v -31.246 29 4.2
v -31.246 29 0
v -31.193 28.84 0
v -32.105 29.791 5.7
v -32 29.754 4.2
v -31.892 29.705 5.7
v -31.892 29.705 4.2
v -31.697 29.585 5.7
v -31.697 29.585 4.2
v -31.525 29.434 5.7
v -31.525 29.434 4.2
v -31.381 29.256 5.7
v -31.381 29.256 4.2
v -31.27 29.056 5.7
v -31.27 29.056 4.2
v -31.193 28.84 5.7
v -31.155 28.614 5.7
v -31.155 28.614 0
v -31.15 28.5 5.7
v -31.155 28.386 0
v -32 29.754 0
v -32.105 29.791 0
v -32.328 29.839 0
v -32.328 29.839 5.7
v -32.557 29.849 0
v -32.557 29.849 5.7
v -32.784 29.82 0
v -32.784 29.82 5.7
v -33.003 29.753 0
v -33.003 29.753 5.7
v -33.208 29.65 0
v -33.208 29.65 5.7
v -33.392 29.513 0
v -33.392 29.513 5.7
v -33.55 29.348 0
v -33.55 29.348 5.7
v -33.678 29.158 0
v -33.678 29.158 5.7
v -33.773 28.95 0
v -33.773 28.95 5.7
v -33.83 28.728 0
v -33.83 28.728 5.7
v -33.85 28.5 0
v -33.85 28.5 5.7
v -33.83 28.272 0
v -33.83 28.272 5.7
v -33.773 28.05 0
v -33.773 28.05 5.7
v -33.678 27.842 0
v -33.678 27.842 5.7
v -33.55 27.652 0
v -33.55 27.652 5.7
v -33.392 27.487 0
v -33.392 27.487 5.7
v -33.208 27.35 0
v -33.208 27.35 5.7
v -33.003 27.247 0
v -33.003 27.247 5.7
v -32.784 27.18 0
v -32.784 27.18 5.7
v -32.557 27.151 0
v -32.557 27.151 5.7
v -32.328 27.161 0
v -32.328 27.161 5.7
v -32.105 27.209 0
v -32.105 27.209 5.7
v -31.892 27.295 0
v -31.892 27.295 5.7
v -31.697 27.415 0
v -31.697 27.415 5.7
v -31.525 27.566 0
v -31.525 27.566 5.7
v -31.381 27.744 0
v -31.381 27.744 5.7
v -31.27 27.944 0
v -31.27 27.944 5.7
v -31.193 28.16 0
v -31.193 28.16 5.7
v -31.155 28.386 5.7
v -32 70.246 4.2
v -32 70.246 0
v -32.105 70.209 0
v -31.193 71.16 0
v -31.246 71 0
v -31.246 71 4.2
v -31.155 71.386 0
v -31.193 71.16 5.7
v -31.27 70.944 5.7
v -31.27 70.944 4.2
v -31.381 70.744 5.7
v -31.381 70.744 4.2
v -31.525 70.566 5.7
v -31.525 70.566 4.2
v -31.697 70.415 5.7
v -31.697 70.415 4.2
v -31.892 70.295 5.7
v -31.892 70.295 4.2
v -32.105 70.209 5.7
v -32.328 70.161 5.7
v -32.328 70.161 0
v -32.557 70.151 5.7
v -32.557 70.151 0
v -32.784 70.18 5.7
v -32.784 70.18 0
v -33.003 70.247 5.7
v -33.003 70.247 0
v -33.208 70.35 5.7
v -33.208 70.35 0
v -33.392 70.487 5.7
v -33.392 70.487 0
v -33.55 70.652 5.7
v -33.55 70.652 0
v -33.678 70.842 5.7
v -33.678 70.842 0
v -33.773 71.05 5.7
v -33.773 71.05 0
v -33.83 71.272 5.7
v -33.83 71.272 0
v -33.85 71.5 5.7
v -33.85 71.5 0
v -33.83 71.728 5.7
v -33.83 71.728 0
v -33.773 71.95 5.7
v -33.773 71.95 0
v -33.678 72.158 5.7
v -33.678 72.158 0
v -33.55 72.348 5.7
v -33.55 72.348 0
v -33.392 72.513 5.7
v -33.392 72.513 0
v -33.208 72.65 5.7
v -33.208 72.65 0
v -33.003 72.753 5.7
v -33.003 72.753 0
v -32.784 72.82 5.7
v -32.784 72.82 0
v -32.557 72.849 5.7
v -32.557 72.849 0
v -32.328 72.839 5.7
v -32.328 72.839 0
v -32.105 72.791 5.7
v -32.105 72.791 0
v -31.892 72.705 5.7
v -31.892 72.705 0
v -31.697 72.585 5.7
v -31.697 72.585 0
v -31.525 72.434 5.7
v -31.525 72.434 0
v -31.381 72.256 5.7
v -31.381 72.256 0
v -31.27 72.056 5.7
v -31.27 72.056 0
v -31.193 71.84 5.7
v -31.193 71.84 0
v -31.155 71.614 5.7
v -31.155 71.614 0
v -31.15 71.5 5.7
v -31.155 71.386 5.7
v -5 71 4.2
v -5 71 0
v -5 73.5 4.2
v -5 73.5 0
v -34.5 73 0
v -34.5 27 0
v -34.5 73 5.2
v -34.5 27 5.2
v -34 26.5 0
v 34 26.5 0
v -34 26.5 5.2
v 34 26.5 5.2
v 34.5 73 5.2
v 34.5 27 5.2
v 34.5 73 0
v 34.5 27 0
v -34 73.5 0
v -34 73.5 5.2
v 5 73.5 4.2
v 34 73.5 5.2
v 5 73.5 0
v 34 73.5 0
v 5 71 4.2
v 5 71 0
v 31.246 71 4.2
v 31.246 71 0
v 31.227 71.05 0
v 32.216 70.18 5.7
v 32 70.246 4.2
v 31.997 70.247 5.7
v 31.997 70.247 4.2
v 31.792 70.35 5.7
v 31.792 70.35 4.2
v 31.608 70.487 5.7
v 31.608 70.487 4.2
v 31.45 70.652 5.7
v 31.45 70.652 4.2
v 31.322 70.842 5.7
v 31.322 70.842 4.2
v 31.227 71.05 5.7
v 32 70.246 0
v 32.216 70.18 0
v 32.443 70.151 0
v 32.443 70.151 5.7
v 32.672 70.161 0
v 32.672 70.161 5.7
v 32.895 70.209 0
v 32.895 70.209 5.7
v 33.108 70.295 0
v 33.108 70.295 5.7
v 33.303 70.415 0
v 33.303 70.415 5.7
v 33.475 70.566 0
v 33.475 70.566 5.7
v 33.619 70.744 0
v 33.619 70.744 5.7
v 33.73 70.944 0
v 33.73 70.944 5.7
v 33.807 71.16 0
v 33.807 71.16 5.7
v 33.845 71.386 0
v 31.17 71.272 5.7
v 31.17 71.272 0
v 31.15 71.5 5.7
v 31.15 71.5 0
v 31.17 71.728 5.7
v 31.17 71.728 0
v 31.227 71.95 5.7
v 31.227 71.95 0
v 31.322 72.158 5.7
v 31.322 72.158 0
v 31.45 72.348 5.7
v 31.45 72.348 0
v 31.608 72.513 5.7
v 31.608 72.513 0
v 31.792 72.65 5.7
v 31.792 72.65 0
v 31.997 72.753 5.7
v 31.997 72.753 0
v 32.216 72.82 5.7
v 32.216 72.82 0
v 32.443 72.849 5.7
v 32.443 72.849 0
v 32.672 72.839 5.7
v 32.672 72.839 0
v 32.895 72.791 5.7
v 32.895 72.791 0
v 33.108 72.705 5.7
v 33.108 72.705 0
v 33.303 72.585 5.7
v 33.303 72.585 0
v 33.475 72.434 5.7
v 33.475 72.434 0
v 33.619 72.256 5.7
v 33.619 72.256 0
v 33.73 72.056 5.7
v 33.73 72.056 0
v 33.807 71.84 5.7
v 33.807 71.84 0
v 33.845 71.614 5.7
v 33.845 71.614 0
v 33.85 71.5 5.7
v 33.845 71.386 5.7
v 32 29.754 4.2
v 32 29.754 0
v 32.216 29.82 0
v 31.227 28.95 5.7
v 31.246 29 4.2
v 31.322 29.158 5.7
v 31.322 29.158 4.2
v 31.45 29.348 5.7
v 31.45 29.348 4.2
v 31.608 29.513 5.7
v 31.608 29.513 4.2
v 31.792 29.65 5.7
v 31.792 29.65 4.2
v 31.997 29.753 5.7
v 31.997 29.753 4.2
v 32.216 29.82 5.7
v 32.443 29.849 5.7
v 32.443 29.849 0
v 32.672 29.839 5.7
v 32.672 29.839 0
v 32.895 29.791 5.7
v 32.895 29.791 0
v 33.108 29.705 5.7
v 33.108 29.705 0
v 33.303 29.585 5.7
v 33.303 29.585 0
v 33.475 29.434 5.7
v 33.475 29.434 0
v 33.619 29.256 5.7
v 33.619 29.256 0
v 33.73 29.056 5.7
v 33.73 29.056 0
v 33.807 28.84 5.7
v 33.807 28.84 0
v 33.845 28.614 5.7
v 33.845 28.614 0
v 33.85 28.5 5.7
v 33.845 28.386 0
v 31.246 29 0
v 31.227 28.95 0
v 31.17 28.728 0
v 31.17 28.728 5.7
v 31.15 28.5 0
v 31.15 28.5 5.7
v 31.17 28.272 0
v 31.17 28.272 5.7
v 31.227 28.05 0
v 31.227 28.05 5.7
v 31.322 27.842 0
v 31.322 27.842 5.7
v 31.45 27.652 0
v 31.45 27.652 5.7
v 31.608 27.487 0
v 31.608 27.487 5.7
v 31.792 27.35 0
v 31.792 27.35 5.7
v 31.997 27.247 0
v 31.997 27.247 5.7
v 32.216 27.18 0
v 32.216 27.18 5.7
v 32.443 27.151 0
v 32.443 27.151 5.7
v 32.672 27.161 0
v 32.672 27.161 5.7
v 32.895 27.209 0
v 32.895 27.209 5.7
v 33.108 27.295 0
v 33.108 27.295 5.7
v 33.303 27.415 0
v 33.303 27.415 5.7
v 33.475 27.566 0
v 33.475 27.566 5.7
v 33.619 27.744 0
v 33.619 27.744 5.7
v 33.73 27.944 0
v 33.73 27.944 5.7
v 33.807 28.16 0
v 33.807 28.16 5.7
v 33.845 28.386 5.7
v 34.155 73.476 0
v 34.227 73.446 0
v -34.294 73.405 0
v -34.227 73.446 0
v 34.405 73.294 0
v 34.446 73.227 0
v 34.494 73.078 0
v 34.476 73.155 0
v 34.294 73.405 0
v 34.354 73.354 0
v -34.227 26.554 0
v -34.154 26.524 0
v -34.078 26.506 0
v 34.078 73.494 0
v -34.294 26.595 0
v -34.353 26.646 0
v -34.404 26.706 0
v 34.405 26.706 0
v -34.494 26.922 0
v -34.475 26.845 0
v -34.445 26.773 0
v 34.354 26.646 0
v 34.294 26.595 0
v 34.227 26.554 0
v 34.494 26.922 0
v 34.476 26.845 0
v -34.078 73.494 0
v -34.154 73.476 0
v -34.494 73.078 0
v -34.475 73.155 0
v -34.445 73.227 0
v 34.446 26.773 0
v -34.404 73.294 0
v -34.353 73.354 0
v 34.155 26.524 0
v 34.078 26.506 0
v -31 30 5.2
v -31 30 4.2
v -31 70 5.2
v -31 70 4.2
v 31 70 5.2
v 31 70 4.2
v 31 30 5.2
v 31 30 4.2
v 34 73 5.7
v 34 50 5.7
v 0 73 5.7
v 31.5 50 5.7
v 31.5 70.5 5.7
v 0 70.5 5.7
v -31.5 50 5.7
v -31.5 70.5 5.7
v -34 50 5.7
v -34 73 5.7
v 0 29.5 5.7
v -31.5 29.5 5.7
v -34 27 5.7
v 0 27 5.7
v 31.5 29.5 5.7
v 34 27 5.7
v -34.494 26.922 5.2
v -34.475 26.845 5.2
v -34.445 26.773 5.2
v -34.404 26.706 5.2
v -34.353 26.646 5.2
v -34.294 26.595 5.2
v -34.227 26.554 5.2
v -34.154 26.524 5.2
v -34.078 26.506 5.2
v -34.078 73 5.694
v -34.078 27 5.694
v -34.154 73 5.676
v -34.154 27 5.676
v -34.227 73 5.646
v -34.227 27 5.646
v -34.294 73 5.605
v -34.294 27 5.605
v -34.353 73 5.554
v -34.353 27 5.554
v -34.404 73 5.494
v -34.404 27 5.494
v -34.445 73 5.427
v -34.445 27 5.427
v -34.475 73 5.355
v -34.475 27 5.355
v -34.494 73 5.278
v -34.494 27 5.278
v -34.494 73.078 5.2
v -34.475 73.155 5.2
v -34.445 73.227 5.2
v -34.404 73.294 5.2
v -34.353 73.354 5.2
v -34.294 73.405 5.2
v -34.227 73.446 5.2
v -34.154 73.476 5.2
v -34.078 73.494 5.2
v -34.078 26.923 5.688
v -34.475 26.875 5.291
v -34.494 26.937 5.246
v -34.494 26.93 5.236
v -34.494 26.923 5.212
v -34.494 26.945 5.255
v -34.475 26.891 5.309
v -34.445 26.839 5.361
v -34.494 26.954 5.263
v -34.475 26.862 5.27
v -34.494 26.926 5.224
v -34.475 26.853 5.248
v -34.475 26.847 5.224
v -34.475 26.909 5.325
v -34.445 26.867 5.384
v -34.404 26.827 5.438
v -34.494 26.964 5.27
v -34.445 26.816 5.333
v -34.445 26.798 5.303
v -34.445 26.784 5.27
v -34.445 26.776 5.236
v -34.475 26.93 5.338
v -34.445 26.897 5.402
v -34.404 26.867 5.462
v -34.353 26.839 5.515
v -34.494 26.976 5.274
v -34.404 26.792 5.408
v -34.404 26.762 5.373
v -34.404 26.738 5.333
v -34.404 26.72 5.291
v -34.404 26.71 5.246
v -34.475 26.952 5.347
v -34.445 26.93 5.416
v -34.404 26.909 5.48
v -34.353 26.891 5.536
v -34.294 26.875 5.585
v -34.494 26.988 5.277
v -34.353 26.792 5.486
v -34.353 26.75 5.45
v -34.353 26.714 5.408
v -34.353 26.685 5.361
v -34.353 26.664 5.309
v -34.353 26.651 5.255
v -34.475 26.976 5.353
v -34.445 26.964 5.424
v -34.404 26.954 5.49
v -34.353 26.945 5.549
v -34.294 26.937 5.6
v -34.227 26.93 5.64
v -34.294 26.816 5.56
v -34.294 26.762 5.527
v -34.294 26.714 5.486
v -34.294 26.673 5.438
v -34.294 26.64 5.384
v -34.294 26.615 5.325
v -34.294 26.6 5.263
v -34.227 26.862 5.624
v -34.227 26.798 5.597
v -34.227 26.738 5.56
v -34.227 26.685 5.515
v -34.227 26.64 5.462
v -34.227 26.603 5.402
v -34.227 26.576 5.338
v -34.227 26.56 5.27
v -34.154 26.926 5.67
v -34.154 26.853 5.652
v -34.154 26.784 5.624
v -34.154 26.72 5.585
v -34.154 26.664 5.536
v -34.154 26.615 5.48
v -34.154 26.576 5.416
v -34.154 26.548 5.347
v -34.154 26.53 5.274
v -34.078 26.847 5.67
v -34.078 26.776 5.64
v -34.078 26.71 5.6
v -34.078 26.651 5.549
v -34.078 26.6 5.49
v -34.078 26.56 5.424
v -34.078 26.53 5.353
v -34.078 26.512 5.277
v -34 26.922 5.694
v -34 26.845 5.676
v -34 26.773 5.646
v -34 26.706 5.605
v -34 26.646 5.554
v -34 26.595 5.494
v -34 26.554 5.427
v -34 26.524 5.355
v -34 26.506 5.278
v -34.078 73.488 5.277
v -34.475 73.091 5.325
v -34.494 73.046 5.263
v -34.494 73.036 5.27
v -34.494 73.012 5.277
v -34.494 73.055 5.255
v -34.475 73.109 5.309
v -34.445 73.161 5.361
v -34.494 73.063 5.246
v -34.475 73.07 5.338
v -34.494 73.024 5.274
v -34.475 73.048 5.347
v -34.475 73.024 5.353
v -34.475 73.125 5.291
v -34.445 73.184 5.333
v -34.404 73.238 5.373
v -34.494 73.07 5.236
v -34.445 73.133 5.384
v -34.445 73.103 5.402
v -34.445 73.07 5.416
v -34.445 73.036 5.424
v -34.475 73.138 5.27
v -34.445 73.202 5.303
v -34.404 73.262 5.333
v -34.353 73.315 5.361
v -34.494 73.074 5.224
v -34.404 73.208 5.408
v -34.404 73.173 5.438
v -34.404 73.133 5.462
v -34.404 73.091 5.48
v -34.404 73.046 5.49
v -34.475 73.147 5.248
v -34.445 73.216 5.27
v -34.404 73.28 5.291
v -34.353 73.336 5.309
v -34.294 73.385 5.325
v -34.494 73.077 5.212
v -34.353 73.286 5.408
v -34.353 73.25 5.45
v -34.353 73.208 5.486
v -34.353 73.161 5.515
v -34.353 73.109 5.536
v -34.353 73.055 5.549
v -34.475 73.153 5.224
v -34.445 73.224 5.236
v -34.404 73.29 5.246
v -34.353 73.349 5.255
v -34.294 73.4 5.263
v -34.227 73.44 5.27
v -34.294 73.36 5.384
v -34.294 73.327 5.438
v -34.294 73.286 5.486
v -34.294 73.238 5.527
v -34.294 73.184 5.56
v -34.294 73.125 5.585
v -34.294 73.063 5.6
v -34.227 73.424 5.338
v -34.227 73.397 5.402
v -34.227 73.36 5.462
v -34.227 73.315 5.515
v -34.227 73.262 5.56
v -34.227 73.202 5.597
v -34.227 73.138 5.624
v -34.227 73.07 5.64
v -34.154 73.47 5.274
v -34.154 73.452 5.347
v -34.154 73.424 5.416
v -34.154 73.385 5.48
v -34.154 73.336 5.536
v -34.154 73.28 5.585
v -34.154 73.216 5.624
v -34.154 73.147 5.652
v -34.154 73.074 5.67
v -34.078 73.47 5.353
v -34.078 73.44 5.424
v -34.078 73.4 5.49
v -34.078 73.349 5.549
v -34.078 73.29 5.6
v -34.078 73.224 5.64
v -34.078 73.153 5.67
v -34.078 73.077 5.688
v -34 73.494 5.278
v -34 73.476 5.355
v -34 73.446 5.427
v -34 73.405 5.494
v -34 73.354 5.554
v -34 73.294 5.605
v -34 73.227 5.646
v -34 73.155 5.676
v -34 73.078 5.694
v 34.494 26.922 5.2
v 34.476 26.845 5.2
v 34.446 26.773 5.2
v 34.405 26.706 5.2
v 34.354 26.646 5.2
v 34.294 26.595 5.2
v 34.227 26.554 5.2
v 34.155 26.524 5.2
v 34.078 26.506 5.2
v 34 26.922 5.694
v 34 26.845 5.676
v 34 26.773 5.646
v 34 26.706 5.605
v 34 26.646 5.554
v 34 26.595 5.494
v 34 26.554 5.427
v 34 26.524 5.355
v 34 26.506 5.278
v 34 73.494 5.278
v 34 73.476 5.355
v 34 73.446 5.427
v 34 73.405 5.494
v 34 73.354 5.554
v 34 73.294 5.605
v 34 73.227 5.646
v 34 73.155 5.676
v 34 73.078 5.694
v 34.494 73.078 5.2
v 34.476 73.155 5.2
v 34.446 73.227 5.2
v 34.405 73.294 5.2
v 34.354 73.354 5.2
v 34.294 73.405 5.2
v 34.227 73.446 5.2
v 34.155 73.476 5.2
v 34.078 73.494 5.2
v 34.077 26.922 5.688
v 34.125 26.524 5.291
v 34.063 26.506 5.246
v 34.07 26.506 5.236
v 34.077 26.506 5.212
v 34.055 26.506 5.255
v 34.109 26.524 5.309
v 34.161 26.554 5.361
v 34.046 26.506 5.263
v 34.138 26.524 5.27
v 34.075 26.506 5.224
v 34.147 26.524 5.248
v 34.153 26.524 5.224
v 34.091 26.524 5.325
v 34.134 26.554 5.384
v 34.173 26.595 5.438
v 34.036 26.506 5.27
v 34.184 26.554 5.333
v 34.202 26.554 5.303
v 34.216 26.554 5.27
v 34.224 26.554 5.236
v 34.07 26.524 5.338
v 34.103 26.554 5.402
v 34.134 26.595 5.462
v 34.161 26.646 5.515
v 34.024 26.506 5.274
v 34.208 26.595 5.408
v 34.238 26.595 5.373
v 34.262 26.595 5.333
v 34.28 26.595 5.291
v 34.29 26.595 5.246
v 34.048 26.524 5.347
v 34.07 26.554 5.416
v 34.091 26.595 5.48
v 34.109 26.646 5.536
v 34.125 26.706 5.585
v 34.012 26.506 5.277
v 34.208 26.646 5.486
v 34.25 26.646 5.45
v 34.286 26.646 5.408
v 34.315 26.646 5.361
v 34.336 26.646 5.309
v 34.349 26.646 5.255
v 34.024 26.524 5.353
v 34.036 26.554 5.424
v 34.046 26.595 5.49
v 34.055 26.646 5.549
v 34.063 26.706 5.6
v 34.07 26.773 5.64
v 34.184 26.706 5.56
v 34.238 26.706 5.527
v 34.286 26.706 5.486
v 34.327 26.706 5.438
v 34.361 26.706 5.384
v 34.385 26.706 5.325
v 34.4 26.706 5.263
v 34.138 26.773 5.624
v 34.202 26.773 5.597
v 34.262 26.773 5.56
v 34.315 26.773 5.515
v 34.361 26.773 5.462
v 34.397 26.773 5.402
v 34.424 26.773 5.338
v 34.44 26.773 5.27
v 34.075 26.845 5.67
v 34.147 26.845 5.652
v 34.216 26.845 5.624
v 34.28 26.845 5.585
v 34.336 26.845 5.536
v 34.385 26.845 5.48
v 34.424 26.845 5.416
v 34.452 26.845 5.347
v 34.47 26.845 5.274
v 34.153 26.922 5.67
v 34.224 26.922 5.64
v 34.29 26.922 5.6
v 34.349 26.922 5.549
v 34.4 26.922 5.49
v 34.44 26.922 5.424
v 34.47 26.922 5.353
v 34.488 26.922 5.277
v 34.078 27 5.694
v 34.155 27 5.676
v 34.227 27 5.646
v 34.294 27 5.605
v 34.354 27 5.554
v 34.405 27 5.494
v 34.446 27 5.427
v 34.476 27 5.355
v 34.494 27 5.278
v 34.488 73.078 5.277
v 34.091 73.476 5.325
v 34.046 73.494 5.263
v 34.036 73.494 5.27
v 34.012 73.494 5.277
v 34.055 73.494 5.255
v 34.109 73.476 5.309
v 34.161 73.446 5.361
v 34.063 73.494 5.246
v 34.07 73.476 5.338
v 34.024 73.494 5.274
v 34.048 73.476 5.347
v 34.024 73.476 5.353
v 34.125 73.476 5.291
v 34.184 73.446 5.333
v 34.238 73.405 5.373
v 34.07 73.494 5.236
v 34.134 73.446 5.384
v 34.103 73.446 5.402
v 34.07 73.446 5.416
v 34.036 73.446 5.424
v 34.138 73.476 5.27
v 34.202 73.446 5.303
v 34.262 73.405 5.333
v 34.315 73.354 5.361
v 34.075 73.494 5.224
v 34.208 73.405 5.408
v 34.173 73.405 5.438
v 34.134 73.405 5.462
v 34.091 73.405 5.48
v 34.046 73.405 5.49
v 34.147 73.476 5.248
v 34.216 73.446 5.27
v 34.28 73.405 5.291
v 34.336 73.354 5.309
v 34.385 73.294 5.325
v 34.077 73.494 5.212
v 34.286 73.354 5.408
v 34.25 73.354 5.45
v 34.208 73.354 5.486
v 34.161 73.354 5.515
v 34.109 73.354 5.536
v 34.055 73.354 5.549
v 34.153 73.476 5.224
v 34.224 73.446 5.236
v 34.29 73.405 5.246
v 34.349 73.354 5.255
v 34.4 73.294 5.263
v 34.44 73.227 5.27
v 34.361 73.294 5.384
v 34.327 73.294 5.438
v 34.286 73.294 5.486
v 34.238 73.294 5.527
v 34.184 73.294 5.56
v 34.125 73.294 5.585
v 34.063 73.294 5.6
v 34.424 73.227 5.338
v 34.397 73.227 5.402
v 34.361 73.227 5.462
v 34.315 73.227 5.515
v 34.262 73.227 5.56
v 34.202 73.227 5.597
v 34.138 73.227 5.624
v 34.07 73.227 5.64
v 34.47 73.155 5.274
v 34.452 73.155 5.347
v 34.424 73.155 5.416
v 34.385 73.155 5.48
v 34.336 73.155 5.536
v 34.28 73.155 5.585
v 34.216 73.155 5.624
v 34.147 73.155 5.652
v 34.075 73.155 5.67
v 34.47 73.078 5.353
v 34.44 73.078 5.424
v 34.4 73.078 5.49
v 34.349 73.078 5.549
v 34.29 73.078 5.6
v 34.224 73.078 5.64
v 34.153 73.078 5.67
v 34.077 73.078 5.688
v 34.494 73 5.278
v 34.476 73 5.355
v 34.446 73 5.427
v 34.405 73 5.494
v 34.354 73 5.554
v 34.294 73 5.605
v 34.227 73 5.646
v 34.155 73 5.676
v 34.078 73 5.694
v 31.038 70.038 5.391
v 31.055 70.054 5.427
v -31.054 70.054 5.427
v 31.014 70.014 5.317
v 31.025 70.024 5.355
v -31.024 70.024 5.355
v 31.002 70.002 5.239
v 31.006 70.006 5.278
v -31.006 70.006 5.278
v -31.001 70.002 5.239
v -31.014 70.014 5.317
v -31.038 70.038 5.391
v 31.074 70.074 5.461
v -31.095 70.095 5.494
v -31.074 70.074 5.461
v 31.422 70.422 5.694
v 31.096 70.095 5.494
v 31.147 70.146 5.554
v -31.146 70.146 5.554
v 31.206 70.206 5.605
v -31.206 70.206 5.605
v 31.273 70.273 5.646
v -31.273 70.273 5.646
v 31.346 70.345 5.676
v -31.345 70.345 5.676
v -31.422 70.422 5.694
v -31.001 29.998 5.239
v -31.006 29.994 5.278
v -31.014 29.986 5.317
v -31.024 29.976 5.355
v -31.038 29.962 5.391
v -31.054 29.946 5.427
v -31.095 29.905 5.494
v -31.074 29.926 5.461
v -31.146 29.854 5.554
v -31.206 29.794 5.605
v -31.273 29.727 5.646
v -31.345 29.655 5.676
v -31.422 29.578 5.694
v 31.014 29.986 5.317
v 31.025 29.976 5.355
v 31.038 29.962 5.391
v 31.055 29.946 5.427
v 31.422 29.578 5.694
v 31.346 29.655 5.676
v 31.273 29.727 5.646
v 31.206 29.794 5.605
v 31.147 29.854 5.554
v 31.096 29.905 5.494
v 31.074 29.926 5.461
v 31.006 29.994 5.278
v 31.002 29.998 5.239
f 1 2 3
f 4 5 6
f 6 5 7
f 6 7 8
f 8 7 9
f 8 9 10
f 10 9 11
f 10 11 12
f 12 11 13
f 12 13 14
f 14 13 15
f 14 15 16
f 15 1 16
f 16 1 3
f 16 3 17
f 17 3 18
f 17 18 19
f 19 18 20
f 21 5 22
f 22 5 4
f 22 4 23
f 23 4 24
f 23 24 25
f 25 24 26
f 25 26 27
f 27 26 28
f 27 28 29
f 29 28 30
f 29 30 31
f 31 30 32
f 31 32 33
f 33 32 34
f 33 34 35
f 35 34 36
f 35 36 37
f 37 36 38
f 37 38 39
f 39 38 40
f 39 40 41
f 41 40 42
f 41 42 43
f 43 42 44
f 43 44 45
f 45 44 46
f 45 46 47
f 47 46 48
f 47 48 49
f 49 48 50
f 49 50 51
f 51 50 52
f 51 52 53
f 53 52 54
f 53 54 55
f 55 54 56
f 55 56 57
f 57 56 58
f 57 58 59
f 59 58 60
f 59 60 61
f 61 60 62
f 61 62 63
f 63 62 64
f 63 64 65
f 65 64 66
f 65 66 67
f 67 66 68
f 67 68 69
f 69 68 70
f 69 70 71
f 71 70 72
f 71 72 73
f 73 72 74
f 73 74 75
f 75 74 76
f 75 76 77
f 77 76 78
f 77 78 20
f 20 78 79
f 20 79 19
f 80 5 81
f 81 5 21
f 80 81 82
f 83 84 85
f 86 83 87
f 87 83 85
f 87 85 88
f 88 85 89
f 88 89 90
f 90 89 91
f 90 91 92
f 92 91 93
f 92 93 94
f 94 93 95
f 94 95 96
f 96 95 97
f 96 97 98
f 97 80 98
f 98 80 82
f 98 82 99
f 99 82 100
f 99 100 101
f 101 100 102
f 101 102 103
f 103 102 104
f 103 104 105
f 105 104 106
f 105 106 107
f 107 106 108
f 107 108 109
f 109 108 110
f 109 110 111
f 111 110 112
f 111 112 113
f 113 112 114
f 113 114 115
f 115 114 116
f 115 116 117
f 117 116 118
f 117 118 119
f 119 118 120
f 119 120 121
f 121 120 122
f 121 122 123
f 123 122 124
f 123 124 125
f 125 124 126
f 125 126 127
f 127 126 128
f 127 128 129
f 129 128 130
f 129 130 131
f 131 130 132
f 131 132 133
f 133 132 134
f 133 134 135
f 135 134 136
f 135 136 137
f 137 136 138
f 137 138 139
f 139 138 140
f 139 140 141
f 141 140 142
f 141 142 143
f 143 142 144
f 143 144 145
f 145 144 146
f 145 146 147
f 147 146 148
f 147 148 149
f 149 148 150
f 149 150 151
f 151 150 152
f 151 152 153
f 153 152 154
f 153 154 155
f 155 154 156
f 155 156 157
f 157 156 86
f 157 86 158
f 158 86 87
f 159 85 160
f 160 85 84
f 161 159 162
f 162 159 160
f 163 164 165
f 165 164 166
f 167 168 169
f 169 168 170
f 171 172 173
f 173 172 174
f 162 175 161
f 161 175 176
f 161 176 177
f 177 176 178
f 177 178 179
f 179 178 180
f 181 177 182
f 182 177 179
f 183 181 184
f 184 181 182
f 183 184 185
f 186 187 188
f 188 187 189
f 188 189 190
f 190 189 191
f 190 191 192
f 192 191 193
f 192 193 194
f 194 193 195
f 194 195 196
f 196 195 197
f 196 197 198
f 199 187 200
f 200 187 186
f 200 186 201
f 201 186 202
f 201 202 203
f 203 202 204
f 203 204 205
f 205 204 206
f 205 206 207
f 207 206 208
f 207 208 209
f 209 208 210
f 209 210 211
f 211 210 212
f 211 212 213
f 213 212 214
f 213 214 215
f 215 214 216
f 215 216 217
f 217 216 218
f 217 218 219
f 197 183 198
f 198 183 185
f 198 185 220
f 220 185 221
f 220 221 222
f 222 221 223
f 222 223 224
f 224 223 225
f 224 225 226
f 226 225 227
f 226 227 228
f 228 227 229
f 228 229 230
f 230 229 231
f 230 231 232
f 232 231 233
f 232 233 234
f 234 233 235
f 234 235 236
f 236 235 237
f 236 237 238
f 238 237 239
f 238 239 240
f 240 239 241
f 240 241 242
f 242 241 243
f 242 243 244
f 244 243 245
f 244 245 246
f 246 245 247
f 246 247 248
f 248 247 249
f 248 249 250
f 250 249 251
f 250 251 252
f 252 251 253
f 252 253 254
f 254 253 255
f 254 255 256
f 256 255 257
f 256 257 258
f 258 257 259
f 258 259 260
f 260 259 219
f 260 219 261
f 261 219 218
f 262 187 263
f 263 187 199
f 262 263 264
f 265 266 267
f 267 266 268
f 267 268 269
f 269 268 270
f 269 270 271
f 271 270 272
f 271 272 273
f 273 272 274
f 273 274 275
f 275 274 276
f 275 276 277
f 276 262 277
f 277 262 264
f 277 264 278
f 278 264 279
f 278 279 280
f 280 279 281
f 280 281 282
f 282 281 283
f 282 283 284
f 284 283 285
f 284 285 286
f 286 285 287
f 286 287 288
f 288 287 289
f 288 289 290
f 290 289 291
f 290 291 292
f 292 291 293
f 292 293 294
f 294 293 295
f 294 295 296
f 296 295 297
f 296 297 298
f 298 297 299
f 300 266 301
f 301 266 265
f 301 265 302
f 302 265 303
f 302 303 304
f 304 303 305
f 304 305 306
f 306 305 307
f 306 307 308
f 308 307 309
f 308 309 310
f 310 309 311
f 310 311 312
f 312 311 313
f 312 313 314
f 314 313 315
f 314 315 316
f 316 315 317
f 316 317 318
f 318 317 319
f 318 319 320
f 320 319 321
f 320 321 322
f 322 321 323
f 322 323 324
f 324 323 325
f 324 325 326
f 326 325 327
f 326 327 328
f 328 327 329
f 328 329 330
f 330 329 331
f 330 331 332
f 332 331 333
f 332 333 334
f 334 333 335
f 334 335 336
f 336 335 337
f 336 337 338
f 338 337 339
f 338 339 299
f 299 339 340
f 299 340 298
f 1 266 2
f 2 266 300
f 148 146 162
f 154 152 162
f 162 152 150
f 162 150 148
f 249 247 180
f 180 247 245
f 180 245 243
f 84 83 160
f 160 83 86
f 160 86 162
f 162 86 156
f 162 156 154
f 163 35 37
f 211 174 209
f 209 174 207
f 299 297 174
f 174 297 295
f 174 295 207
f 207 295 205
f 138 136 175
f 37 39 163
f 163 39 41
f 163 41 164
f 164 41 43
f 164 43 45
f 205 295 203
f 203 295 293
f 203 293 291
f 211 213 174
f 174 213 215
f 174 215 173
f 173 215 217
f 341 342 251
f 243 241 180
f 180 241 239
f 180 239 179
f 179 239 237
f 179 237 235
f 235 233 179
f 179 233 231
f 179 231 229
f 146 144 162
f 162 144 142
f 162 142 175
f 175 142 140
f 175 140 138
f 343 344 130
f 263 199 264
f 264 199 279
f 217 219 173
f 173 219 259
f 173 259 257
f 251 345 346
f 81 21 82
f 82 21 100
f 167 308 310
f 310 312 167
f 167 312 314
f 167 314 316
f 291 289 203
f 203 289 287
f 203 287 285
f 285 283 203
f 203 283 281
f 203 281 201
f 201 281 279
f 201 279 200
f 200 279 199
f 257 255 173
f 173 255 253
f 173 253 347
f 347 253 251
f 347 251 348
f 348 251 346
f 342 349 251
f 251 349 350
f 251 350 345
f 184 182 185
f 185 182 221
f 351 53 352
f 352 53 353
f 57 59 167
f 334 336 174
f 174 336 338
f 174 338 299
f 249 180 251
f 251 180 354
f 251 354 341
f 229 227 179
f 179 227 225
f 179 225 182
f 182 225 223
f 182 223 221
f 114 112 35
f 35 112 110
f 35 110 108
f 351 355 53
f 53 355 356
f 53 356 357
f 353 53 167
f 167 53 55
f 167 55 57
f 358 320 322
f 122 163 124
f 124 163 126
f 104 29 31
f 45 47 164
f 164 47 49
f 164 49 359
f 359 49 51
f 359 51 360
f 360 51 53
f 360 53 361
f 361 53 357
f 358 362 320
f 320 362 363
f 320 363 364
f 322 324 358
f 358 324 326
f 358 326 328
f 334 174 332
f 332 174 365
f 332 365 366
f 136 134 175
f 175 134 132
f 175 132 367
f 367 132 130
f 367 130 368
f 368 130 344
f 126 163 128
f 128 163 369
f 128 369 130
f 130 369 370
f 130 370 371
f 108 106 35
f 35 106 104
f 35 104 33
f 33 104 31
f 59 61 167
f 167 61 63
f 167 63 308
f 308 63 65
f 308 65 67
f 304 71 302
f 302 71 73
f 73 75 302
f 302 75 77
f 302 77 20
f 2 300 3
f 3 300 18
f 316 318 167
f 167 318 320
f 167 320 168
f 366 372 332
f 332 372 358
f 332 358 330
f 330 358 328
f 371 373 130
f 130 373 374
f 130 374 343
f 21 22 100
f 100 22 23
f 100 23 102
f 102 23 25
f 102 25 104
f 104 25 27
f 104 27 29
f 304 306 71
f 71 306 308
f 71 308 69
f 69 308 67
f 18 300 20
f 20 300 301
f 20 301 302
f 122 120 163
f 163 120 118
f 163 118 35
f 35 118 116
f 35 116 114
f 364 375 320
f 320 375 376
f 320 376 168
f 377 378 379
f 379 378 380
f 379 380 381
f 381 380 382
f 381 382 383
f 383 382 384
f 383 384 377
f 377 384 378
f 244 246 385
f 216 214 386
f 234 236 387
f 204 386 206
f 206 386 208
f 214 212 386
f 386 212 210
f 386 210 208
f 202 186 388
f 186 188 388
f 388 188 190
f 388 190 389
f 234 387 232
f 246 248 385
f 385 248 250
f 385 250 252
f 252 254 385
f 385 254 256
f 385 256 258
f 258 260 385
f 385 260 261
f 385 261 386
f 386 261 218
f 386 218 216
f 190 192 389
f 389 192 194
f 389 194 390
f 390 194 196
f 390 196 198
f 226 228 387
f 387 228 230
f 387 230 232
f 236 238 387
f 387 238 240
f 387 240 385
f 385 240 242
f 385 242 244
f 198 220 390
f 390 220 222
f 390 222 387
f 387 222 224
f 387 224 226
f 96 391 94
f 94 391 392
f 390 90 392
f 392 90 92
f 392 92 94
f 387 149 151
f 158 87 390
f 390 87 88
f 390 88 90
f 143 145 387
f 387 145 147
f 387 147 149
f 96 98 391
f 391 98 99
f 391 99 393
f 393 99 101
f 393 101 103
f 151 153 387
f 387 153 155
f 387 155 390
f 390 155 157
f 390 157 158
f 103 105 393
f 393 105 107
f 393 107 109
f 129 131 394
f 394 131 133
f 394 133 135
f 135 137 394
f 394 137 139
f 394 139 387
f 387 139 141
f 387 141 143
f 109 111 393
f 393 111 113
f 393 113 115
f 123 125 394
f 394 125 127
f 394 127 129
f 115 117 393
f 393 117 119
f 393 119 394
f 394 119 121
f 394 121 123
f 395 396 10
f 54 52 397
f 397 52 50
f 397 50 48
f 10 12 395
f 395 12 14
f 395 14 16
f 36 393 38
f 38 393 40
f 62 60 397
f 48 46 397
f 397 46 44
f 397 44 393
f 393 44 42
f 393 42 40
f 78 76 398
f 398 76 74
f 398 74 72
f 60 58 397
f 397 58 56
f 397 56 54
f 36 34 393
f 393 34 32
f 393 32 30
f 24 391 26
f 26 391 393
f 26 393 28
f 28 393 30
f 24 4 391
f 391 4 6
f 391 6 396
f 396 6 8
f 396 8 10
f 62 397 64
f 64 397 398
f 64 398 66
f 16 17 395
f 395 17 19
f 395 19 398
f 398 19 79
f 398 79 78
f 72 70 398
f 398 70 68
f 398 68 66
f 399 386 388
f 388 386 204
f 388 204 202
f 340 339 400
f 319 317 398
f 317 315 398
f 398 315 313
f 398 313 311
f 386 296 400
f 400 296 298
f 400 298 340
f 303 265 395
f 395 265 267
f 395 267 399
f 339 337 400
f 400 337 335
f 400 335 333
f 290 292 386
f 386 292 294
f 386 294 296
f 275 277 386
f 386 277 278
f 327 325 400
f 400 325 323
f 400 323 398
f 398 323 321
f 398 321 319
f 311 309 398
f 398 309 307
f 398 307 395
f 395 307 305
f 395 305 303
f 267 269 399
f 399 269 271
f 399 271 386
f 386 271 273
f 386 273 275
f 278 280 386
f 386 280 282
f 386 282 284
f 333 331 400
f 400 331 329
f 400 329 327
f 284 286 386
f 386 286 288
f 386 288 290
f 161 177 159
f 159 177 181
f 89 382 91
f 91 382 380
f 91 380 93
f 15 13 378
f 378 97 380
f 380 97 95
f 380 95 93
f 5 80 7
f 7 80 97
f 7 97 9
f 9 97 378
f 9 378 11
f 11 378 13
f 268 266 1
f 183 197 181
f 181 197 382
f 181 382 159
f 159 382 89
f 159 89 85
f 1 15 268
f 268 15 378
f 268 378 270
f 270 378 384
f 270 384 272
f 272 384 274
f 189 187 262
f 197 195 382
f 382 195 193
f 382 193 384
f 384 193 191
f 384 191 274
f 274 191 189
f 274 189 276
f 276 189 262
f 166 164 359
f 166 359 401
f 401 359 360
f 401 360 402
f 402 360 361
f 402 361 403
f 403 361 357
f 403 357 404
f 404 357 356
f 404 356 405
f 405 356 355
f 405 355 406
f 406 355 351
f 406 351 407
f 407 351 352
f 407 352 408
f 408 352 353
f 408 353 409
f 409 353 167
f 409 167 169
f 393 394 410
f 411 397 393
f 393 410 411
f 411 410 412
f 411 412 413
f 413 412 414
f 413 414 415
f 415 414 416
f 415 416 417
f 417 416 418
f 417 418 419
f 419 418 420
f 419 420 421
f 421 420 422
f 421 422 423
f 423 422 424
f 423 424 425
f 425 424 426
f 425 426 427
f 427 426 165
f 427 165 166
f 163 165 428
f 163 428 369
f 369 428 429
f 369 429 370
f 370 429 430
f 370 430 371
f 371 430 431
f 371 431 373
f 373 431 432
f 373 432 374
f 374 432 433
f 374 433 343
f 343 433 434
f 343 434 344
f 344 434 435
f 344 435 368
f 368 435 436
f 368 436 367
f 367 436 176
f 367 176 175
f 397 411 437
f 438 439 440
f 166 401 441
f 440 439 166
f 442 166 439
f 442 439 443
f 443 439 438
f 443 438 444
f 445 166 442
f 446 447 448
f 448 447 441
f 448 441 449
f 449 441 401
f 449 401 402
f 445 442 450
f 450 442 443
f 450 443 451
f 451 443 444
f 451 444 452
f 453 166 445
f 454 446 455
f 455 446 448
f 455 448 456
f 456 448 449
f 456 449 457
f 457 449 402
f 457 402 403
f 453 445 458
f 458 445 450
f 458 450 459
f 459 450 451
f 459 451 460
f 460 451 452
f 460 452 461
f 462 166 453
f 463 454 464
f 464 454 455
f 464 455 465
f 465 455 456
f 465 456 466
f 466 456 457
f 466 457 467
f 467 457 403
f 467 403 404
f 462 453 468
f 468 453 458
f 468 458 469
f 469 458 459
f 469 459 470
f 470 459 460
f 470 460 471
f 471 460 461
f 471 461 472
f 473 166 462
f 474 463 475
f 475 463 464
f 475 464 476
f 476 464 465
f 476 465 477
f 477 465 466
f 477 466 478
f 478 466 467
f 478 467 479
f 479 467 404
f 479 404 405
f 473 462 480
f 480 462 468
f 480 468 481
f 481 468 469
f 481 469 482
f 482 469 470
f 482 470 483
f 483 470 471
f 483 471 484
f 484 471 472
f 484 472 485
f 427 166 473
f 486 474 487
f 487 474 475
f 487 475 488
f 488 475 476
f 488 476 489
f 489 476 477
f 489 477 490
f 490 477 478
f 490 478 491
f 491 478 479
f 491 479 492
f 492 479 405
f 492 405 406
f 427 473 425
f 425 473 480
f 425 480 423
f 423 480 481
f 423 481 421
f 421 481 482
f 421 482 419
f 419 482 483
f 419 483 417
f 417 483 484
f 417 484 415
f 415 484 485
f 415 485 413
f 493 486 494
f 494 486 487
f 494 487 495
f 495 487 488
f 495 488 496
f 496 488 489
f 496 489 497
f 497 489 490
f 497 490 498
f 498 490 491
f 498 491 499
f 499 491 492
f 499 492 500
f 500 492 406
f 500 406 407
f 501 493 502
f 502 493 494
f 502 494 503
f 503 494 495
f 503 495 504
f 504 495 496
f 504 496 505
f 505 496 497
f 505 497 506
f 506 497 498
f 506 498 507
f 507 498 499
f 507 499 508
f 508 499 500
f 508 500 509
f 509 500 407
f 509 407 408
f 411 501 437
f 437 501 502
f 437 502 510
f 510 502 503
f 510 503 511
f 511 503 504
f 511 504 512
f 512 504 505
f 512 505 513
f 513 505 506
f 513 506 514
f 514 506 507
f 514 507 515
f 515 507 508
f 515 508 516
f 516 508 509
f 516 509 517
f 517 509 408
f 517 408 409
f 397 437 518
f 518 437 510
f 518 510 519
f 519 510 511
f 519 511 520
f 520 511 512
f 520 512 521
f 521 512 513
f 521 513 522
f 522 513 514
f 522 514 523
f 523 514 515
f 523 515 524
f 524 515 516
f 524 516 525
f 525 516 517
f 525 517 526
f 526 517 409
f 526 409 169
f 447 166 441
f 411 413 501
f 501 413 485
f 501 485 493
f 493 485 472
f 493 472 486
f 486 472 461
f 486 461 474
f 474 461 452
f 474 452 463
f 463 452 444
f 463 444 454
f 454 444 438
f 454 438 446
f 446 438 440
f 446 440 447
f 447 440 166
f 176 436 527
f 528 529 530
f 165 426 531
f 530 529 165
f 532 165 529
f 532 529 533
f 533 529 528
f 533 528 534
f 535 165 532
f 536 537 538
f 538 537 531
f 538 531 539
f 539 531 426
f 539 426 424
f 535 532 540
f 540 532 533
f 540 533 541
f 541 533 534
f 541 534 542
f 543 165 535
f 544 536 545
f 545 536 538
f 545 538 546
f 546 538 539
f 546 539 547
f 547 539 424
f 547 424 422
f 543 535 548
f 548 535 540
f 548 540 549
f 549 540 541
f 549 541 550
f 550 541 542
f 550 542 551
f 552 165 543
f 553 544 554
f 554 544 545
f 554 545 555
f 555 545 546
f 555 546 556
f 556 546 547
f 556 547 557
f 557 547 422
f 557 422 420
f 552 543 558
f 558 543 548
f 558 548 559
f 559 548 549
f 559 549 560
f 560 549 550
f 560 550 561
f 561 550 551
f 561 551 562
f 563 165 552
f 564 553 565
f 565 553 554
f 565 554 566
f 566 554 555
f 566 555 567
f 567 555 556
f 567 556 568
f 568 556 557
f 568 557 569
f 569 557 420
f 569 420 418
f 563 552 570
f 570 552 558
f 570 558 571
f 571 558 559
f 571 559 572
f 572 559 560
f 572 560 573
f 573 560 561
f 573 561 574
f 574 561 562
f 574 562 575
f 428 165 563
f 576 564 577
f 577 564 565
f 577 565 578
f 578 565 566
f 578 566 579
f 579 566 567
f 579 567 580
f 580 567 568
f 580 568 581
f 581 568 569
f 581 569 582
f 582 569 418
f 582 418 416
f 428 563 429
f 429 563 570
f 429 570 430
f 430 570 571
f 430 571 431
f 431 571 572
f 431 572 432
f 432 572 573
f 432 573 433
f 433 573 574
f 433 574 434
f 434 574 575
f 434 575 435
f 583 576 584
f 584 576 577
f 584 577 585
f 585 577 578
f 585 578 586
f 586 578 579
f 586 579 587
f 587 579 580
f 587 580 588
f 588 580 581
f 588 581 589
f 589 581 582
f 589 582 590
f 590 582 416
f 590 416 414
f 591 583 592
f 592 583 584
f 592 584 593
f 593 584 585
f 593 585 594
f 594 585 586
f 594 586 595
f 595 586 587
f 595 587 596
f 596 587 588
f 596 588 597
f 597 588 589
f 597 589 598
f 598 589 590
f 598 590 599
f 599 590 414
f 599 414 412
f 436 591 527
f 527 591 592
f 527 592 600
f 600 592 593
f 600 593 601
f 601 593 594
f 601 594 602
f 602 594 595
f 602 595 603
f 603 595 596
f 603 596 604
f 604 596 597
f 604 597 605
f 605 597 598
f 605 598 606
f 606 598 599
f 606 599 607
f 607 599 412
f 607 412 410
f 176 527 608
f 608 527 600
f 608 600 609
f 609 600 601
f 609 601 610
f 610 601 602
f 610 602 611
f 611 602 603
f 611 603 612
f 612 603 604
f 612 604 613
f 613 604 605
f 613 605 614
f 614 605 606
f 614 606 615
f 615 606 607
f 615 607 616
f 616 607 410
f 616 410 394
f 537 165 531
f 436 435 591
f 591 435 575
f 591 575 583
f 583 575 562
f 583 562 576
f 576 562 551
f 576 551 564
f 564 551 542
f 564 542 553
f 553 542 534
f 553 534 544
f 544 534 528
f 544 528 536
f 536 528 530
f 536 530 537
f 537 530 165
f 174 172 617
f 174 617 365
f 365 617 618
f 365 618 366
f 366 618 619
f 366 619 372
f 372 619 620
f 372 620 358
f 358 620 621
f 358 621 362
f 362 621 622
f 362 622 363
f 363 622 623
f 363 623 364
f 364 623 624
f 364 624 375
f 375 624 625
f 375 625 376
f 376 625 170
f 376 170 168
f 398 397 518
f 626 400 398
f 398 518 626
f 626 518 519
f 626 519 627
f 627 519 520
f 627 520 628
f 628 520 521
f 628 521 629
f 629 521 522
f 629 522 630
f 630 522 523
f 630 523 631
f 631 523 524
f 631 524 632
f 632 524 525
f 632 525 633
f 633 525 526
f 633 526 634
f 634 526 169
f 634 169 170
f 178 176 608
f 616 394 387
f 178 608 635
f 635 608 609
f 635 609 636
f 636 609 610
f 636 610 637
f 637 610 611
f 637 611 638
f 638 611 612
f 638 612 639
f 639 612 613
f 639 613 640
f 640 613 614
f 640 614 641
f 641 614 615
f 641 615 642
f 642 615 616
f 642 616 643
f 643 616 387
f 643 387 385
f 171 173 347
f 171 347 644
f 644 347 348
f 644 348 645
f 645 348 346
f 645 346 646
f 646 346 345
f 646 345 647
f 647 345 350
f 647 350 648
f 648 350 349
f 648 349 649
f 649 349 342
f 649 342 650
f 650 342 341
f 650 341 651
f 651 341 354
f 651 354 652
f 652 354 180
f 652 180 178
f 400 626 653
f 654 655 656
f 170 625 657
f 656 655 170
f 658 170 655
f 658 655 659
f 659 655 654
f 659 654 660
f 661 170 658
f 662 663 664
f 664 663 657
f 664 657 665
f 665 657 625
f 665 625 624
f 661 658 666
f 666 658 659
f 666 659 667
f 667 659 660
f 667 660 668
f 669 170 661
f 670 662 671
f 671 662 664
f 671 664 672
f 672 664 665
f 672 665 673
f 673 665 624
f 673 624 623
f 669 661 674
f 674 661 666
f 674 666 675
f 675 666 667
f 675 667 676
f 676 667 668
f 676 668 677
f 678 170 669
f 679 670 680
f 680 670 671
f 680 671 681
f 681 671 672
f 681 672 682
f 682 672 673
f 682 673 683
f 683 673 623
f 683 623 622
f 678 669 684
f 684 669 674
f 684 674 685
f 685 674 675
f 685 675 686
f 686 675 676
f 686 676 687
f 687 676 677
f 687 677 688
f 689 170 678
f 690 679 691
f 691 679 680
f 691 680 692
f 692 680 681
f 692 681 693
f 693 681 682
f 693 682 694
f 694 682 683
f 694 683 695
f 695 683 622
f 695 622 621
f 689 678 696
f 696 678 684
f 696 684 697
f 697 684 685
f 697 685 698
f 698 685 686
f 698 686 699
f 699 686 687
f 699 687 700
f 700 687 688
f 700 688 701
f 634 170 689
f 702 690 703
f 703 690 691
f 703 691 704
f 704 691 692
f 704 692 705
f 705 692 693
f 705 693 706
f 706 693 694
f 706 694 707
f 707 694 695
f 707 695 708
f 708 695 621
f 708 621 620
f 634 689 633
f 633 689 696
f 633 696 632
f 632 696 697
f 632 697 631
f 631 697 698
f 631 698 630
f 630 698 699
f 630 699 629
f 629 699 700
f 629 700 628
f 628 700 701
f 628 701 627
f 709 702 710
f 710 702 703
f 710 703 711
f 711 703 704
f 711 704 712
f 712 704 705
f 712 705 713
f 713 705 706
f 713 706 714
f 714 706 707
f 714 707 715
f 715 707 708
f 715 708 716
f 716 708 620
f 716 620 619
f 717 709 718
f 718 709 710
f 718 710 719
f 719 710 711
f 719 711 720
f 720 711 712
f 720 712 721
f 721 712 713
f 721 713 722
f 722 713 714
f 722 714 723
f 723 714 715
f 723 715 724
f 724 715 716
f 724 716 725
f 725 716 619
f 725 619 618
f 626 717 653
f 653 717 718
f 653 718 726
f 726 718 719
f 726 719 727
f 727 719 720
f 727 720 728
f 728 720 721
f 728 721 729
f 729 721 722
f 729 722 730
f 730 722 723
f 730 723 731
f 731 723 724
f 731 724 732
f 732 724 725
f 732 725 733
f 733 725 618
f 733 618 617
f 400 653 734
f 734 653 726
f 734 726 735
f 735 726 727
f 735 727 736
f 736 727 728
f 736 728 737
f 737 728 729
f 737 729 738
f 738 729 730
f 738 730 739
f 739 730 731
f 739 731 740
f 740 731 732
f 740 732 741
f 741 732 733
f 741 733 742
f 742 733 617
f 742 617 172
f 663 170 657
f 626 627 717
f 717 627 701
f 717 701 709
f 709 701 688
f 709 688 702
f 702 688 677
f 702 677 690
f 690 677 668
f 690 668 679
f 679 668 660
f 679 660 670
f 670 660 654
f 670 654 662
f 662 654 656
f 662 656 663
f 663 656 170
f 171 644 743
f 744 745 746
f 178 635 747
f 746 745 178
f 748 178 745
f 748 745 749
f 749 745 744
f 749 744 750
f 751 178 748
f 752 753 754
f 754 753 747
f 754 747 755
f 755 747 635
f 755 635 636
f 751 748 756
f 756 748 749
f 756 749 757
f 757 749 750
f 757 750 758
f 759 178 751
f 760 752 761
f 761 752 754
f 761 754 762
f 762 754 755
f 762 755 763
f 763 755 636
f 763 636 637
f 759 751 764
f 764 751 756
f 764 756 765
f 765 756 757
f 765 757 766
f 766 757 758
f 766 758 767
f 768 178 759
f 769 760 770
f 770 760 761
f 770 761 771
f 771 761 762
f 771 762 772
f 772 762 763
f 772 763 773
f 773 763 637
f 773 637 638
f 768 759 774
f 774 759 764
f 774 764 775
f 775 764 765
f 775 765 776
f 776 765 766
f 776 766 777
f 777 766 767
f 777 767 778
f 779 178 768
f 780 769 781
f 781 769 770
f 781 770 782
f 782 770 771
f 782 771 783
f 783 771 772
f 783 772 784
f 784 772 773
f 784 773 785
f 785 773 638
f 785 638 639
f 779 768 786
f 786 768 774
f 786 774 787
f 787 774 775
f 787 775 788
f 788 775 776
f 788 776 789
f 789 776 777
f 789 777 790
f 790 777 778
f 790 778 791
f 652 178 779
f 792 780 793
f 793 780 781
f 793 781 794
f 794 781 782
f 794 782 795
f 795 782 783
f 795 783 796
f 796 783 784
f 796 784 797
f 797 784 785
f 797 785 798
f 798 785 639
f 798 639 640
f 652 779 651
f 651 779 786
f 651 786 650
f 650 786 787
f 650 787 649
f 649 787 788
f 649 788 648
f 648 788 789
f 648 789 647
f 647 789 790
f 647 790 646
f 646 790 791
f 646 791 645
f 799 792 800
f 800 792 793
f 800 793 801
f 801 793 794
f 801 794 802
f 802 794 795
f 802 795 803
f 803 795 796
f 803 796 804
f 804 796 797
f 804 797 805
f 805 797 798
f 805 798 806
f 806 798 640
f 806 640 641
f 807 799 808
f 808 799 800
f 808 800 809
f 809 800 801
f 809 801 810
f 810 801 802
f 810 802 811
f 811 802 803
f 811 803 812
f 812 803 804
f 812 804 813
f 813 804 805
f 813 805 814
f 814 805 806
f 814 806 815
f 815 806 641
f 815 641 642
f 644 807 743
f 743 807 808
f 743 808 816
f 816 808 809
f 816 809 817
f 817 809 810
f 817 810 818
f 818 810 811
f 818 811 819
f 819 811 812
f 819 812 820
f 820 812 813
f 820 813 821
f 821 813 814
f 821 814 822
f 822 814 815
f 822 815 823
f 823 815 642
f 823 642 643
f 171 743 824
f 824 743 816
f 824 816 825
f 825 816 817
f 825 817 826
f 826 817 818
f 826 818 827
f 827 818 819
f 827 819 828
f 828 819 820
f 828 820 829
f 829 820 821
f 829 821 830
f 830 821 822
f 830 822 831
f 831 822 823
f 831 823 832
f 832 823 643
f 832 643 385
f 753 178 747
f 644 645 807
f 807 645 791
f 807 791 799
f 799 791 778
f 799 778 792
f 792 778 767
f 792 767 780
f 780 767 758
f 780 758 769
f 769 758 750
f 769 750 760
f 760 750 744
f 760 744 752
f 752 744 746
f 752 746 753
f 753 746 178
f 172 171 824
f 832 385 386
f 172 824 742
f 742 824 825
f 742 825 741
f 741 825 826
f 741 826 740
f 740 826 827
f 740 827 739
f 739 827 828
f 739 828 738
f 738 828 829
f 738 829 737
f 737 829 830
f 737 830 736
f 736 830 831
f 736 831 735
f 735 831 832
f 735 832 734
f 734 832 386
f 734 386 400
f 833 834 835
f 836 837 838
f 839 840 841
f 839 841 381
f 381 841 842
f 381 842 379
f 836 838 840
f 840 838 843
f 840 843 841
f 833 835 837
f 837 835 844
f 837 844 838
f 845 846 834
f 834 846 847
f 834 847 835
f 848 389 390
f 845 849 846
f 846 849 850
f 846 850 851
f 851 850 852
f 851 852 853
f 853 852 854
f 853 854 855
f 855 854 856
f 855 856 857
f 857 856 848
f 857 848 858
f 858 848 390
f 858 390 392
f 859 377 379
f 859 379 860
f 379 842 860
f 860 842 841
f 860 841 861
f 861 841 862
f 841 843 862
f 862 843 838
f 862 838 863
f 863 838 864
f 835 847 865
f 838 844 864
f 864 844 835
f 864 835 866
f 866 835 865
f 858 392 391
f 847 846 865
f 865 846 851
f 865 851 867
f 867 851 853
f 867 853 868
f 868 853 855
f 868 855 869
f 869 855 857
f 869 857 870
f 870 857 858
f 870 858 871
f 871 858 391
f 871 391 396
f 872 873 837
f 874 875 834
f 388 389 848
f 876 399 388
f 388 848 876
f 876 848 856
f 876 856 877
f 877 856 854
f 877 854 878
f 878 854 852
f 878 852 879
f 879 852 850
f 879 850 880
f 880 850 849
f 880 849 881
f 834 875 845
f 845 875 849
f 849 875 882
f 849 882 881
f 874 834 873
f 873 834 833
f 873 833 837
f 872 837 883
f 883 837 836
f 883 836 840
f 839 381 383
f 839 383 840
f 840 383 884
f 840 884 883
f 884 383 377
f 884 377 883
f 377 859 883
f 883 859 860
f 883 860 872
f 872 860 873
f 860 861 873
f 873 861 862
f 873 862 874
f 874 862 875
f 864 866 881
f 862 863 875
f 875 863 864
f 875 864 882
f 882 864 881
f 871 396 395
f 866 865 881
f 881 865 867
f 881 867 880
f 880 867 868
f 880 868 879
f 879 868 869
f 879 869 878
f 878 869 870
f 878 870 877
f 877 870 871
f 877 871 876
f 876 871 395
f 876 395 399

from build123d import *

# Parameters (mm, degrees)
BOSS_EXTRUDE1_DEPTH = 4.2
SKETCH2_W           = 62
SKETCH2_H           = 40
BOSS_EXTRUDE2_DEPTH = 1.5
FILLET1_R           = 0.5


with BuildPart() as part:
    # Sketch1 → Boss-Extrude1 (new body)
    with BuildSketch(Plane.XY):
        with BuildLine():
            Line((-5, 73.5), (-34.5, 73.5))
            Line((-34.5, 73.5), (-34.5, 26.5))
            Line((-34.5, 26.5), (34.5, 26.5))
            Line((34.5, 26.5), (34.5, 73.5))
            Line((34.5, 73.5), (5, 73.5))
            Line((5, 73.5), (5, 71))
            Line((5, 71), (31.24600638, 71))
            ThreePointArc((31.24600638, 71), (32.245433101, 72.825781164), (33.85, 71.5))
            ThreePointArc((33.85, 71.5), (33.25746287, 70.382525168), (32, 70.24600638))
            Line((32, 70.24600638), (32, 29.75399362))
            ThreePointArc((32, 29.75399362), (33.25746287, 29.617474832), (33.85, 28.5))
            ThreePointArc((33.85, 28.5), (32.245433101, 27.174218836), (31.24600638, 29))
            Line((31.24600638, 29), (-31.24600638, 29))
            ThreePointArc((-31.24600638, 29), (-31.174218836, 28.754566899), (-31.15, 28.5))
            ThreePointArc((-31.15, 28.5), (-33.617474832, 27.74253713), (-32, 29.75399362))
            Line((-32, 29.75399362), (-32, 70.24600638))
            ThreePointArc((-32, 70.24600638), (-33.617474832, 72.25746287), (-31.15, 71.5))
            ThreePointArc((-31.15, 71.5), (-31.174218836, 71.245433101), (-31.24600638, 71))
            Line((-31.24600638, 71), (-5, 71))
            Line((-5, 71), (-5, 73.5))
        make_face()
    extrude(amount=BOSS_EXTRUDE1_DEPTH)

    # Sketch2 → Boss-Extrude2 (add)
    # profile 1 of 2: a face of its own
    with BuildSketch(Plane.XY.offset(4.2)):
        with BuildLine():
            Line((31.24600638, 29), (-31.24600638, 29))
            ThreePointArc((-31.24600638, 29), (-33.454594155, 27.545405845), (-32, 29.75399362))
            Line((-32, 29.75399362), (-32, 70.24600638))
            ThreePointArc((-32, 70.24600638), (-33.454594155, 72.454594155), (-31.24600638, 71))
            Line((-31.24600638, 71), (-5, 71))
            Line((-5, 71), (-5, 73.5))
            Line((-5, 73.5), (-34.5, 73.5))
            Line((-34.5, 73.5), (-34.5, 26.5))
            Line((-34.5, 26.5), (34.5, 26.5))
            Line((34.5, 26.5), (34.5, 73.5))
            Line((34.5, 73.5), (5, 73.5))
            Line((5, 73.5), (5, 71))
            Line((5, 71), (31.24600638, 71))
            ThreePointArc((31.24600638, 71), (33.454594155, 72.454594155), (32, 70.24600638))
            Line((32, 70.24600638), (32, 29.75399362))
            ThreePointArc((32, 29.75399362), (33.454594155, 27.545405845), (31.24600638, 29))
        make_face()
    # profile 2 of 2: a face of its own
    with BuildSketch(Plane.XY.offset(4.2)):
        with BuildLine():
            Line((5, 71), (5, 73.5))
            Line((5, 73.5), (-5, 73.5))
            Line((-5, 73.5), (-5, 71))
            Line((-5, 71), (-31.24600638, 71))
            ThreePointArc((-31.24600638, 71), (-31.545405845, 70.545405845), (-32, 70.24600638))
            Line((-32, 70.24600638), (-32, 29.75399362))
            ThreePointArc((-32, 29.75399362), (-31.545405845, 29.454594155), (-31.24600638, 29))
            Line((-31.24600638, 29), (31.24600638, 29))
            ThreePointArc((31.24600638, 29), (31.545405845, 29.454594155), (32, 29.75399362))
            Line((32, 29.75399362), (32, 70.24600638))
            ThreePointArc((32, 70.24600638), (31.545405845, 70.545405845), (31.24600638, 71))
            Line((31.24600638, 71), (5, 71))
        make_face()
        with Locations((0, 50)):
            Rectangle(SKETCH2_W, SKETCH2_H, mode=Mode.SUBTRACT)
    extrude(amount=BOSS_EXTRUDE2_DEPTH)

    # Fillet1
    fillet1_edges = [part.edges().sort_by_distance(p)[0] for p in [
        (34.5, 73.5, 2.85),
        (34.5, 26.5, 2.85),
        (-34.5, 26.5, 2.85),
        (-34.5, 73.5, 2.85),
        (-31, 50, 5.7),
        (0, 30, 5.7),
        (34.5, 50, 5.7),
        (0, 73.5, 5.7),
        (-34.5, 50, 5.7),
        (0, 26.5, 5.7),
        (0, 70, 5.7),
        (31, 50, 5.7),
    ]]
    fillet(fillet1_edges, radius=FILLET1_R)


solid = part.part
